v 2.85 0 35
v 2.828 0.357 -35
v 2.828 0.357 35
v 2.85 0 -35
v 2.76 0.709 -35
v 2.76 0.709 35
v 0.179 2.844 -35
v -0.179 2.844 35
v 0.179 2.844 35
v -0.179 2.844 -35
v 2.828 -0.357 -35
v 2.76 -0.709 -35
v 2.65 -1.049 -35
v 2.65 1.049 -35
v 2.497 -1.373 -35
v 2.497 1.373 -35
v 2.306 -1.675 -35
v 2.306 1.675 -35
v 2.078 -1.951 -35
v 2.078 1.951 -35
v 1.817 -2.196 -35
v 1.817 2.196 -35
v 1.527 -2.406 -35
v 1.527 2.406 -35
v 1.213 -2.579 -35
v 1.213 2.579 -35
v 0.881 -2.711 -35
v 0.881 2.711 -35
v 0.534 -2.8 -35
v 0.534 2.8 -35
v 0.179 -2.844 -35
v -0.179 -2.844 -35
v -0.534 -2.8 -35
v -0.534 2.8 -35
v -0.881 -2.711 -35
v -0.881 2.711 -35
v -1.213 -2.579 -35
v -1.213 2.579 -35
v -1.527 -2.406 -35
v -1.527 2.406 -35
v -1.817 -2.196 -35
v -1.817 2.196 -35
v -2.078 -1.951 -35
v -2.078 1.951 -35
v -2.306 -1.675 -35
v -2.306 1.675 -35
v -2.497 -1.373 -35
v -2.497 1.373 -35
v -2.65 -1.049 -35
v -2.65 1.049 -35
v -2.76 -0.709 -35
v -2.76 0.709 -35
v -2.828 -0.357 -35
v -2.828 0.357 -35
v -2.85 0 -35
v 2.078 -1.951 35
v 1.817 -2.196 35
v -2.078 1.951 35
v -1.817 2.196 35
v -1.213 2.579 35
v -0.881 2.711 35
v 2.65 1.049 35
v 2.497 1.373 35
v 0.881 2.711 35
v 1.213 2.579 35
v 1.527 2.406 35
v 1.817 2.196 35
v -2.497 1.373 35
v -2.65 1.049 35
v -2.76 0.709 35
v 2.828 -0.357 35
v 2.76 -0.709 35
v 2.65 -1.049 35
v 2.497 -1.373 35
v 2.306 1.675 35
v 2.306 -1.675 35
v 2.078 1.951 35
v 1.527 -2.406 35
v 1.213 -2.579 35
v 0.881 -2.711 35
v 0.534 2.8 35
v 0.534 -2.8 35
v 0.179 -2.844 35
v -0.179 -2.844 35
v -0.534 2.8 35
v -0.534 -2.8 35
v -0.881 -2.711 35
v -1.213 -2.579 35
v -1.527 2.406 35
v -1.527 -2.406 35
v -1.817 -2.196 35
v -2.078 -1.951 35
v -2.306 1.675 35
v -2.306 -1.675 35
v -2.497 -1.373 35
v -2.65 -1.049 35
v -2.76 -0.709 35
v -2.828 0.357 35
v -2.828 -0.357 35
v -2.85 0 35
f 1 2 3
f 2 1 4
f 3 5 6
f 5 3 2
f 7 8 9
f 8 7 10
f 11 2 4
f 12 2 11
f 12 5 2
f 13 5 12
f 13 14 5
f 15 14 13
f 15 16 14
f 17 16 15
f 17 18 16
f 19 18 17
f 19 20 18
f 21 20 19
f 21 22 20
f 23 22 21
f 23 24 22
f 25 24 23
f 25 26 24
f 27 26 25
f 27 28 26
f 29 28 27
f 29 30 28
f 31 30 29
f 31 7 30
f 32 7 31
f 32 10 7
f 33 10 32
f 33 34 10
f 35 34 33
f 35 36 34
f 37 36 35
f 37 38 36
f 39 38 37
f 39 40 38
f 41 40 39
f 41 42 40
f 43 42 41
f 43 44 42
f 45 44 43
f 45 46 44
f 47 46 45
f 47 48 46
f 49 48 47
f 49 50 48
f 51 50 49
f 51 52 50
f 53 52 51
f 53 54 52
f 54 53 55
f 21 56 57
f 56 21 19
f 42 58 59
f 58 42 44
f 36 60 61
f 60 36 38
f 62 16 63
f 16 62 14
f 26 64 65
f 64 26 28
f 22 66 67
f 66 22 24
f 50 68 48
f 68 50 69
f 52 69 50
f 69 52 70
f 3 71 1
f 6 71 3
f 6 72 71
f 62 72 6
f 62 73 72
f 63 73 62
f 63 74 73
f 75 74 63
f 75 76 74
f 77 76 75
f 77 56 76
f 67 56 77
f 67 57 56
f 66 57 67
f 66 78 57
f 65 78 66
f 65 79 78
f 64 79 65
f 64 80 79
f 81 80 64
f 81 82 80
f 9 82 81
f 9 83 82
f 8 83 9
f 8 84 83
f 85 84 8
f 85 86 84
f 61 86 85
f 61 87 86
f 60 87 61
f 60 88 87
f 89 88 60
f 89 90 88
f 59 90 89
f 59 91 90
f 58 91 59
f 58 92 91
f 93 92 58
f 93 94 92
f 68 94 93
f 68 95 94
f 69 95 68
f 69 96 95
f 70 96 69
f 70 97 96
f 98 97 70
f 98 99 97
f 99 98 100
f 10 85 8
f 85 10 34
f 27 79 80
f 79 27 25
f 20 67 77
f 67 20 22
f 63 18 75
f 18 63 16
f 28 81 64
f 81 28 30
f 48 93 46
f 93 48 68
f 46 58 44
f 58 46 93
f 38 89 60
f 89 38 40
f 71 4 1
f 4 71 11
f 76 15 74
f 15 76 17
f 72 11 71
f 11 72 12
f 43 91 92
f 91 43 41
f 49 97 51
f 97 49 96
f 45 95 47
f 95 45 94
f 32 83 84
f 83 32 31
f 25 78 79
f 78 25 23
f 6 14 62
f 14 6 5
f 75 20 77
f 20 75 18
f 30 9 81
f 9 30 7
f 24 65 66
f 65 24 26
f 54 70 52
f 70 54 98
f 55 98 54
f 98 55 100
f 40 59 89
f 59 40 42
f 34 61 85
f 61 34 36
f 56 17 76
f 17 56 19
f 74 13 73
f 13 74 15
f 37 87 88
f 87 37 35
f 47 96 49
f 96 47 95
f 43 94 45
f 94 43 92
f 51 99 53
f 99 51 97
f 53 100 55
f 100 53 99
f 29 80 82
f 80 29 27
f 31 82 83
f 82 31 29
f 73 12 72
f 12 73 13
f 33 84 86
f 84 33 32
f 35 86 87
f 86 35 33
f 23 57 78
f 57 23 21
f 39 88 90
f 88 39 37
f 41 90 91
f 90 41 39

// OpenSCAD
$fn = 50;


difference() {
	union() {
		translate(v = [0, 0, -35.0000000000]) {
			cylinder(h = 70, r = 2.8500000000);
		}
	}
	union() {
		translate(v = [0, 0, -100.0000000000]) {
			cylinder(h = 200, r = 0);
		}
	}
}
